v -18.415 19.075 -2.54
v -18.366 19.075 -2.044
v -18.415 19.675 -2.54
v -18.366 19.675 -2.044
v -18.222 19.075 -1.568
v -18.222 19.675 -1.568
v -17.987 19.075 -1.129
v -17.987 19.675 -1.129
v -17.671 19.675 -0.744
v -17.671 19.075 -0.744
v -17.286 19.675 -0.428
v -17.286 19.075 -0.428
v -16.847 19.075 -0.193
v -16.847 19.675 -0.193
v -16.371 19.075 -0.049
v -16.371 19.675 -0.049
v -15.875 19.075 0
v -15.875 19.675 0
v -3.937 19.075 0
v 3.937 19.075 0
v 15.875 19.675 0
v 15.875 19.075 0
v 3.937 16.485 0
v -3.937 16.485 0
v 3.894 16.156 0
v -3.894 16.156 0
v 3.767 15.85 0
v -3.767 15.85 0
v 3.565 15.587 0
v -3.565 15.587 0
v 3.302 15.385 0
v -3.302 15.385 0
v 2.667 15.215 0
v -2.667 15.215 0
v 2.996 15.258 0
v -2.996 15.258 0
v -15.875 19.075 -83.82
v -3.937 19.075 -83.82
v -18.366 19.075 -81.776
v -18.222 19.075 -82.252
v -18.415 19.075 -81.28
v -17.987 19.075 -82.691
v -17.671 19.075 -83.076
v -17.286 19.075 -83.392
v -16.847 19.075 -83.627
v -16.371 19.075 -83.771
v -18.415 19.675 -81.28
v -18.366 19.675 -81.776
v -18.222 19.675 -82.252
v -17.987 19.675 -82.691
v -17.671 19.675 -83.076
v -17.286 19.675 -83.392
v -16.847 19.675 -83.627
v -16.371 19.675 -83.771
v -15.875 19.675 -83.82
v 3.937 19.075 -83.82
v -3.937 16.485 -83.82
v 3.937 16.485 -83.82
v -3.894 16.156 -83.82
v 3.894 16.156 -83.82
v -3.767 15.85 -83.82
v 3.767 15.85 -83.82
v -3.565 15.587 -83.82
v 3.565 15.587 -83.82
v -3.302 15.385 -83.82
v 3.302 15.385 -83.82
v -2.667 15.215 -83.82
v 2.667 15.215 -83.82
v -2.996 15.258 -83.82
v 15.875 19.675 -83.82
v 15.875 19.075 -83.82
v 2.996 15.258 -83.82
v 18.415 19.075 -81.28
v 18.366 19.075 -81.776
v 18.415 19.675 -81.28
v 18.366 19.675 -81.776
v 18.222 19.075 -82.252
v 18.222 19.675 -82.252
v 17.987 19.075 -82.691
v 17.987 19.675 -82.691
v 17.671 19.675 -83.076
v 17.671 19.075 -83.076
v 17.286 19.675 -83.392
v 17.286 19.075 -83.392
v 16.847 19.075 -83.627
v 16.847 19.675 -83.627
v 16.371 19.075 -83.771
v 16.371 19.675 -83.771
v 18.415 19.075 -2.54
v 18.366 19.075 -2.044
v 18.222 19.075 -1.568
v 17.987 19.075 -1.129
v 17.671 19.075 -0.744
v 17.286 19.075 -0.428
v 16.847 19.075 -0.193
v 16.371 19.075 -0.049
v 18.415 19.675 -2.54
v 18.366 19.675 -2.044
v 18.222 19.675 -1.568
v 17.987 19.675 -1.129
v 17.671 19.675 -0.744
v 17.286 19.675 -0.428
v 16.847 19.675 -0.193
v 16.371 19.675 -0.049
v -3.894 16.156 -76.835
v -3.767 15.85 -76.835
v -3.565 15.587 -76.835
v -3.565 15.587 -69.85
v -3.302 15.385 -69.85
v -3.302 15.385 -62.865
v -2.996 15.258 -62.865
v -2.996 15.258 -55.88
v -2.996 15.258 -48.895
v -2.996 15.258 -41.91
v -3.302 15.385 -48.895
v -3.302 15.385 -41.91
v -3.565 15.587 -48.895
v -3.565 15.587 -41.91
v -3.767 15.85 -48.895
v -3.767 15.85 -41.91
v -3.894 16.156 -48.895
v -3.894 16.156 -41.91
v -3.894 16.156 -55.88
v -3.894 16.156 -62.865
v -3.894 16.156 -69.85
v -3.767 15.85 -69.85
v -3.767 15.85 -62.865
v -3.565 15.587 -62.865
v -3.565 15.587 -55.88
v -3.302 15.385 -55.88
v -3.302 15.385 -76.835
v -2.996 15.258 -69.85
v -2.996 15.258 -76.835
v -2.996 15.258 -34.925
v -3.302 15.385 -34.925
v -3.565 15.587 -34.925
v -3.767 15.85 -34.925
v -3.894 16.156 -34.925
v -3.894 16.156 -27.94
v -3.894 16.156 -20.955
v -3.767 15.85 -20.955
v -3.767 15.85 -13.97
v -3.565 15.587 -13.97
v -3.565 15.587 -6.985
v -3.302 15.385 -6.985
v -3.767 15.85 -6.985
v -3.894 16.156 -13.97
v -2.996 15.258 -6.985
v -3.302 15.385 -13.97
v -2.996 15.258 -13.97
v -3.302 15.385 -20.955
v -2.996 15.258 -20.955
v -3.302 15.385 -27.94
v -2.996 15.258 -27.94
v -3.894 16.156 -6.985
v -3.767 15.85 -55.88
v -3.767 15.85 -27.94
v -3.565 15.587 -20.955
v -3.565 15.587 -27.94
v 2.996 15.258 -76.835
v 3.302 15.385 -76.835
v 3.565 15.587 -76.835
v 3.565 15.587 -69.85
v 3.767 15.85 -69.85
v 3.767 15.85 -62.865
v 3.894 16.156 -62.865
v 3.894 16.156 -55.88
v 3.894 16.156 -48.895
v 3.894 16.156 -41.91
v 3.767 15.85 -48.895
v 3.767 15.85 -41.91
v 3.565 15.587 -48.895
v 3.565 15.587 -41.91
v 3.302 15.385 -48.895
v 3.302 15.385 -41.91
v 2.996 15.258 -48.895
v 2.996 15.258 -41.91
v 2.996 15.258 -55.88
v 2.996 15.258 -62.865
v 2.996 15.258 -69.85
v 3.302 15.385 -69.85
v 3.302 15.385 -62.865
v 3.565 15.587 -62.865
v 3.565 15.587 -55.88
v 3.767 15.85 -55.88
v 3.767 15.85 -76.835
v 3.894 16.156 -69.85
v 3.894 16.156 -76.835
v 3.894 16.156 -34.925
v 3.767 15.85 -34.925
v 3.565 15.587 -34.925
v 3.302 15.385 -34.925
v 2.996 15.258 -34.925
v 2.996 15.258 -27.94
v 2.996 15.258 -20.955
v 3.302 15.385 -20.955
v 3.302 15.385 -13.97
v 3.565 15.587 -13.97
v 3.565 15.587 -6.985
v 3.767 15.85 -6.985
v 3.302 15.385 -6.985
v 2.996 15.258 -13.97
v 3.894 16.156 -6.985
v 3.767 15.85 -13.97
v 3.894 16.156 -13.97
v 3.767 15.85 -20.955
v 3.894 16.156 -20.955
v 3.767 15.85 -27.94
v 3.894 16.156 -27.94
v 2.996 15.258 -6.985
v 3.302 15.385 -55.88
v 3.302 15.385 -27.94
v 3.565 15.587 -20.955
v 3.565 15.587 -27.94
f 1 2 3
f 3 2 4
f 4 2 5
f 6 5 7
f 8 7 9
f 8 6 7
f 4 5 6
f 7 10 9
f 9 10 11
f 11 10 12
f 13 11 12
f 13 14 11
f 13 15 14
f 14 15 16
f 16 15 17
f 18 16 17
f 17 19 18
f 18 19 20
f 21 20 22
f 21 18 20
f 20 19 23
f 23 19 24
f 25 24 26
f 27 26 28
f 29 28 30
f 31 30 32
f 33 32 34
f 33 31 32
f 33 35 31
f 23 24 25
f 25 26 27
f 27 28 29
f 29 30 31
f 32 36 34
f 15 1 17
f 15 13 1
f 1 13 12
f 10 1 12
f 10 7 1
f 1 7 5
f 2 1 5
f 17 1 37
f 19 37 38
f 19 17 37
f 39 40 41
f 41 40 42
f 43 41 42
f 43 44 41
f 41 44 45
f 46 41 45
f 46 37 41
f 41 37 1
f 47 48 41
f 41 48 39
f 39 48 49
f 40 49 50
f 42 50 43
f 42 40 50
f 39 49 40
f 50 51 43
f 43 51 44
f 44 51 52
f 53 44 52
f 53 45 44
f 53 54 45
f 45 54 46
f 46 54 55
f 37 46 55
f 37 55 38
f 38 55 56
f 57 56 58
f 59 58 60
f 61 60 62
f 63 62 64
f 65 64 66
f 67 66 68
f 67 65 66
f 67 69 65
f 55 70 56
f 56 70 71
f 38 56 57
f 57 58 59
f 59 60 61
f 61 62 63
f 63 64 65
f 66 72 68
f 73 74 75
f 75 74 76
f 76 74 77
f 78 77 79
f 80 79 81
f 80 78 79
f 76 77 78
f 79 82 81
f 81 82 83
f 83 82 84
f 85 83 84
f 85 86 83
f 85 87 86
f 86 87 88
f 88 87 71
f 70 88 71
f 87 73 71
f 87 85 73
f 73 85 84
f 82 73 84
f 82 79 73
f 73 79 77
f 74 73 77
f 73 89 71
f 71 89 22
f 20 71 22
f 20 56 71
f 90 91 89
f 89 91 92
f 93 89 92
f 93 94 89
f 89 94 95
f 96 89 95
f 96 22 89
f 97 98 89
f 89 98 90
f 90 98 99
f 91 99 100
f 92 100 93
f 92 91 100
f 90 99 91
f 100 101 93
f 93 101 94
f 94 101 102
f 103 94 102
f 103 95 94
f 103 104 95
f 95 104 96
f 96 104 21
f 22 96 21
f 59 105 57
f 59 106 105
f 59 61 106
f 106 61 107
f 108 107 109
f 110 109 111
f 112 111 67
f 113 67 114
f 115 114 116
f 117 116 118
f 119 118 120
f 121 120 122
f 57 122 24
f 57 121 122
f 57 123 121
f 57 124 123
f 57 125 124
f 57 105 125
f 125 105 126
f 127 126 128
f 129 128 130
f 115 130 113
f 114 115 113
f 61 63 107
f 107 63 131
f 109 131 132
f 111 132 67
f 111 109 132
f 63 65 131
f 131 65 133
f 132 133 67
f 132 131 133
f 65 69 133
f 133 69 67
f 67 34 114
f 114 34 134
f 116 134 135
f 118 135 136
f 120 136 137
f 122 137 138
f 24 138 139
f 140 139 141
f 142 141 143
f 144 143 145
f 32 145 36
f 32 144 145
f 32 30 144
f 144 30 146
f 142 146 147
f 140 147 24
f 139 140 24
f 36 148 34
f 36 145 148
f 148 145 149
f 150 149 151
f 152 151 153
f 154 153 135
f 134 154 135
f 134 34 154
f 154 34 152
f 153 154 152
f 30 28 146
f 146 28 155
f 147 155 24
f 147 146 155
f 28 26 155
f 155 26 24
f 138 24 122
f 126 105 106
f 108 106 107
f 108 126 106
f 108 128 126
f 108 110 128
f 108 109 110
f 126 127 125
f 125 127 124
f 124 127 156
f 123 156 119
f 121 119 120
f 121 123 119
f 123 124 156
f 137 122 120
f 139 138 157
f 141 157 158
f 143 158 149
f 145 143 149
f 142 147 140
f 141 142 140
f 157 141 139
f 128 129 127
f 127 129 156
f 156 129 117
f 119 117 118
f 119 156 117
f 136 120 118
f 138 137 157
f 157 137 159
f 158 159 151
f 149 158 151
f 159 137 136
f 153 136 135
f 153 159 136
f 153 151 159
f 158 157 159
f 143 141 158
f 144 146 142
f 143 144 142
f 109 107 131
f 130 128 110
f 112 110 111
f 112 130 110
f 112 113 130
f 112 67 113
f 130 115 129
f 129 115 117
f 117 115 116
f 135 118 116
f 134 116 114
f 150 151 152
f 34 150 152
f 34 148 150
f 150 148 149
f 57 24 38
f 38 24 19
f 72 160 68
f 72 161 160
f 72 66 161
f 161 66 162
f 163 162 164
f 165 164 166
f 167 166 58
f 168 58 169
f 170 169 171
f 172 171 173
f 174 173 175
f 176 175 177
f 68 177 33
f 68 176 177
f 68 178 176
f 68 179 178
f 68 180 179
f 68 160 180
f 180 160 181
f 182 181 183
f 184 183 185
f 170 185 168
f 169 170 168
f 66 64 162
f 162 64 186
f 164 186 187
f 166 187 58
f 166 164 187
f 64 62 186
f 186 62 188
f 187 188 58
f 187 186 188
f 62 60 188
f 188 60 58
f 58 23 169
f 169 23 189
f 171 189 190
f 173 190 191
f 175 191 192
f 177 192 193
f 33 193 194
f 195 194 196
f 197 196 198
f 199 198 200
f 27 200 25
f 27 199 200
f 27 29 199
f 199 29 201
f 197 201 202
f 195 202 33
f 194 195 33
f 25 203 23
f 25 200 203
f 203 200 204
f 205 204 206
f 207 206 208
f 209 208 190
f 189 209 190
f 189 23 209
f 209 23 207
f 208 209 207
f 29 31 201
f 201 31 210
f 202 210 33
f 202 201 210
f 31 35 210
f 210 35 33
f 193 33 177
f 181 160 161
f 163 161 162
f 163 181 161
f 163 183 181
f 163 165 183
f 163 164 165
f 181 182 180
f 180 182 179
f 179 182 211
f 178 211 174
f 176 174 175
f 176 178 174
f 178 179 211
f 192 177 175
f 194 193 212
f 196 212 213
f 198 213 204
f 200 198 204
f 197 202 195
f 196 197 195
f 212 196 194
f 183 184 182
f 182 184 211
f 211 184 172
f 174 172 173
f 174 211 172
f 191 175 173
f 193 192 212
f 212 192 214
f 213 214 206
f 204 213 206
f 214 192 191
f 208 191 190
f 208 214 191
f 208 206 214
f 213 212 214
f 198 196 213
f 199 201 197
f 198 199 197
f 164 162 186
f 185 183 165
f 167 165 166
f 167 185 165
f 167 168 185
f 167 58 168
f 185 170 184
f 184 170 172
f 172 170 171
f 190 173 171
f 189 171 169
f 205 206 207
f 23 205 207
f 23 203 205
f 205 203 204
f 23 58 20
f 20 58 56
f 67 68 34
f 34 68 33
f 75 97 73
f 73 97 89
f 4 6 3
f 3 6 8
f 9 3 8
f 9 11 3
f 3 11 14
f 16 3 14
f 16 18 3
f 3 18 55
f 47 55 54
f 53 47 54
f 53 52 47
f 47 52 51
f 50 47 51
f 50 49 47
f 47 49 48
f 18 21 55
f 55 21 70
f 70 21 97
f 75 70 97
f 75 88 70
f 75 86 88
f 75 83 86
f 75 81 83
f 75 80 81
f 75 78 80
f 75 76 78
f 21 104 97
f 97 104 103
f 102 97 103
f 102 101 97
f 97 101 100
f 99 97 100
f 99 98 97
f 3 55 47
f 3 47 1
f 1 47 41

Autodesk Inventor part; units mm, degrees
ref_plane "YZ Plane" through (0, 0, 0) normal (1, 0, 0) x (0, 1, 0)
ref_plane "XZ Plane" through (0, 0, 0) normal (0, 1, 0) x (-1, 0, 0)
ref_plane "Work Plane1" through (0, 0, 0) normal (0, 0, 1) x (1, 0, 0)
sketch "Sketch1" plane through (0, 0, 0) normal (0, 0, 1) x (1, 0, 0)
  circle A0 centre (0, 0) radius 2.413 projected
  line L0 (-4.7444, -6.5405) -> (4.7444, -6.5405) projected
  line L1 (4.7444, -6.5405) -> (10.16, -11.9561) projected
  line L2 (10.16, -11.9561) -> (10.16, -16.002) projected
  line L3 (10.16, -16.002) -> (6.985, -16.002) projected
  line L4 (6.985, -16.002) -> (6.985, -15.24) projected
  line L5 (6.985, -15.24) -> (4.445, -15.24) projected
  line L6 (4.445, -15.24) -> (4.445, -19.05) projected
  line L7 (4.445, -19.05) -> (19.05, -19.05) projected
  line L8 (19.05, -19.05) -> (19.05, -4.445) projected
  line L9 (19.05, -4.445) -> (15.24, -4.445) projected
  line L10 (15.24, -4.445) -> (15.24, -6.985) projected
  line L11 (15.24, -6.985) -> (16.002, -6.985) projected
  line L12 (16.002, -6.985) -> (16.002, -10.16) projected
  line L13 (16.002, -10.16) -> (11.9561, -10.16) projected
  line L14 (11.9561, -10.16) -> (6.5405, -4.7444) projected
  line L15 (6.5405, -4.7444) -> (6.5405, 4.7444) projected
  line L16 (6.5405, 4.7444) -> (11.9561, 10.16) projected
  line L17 (11.9561, 10.16) -> (16.002, 10.16) projected
  line L18 (16.002, 10.16) -> (16.002, 6.985) projected
  line L19 (16.002, 6.985) -> (15.24, 6.985) projected
  line L20 (15.24, 6.985) -> (15.24, 4.445) projected
  line L21 (15.24, 4.445) -> (19.05, 4.445) projected
  line L22 (19.05, 4.445) -> (19.05, 19.05) projected
  line L23 (19.05, 19.05) -> (4.445, 19.05) projected
  line L24 (4.445, 19.05) -> (4.445, 15.24) projected
  line L25 (4.445, 15.24) -> (6.985, 15.24) projected
  line L26 (6.985, 15.24) -> (6.985, 16.002) projected
  line L27 (6.985, 16.002) -> (10.16, 16.002) projected
  line L28 (10.16, 16.002) -> (10.16, 11.9561) projected
  line L29 (10.16, 11.9561) -> (4.7444, 6.5405) projected
  line L30 (4.7444, 6.5405) -> (-4.7444, 6.5405) projected
  line L31 (-4.7444, 6.5405) -> (-10.16, 11.9561) projected
  line L32 (-10.16, 11.9561) -> (-10.16, 16.002) projected
  line L33 (-10.16, 16.002) -> (-6.985, 16.002) projected
  line L34 (-6.985, 16.002) -> (-6.985, 15.24) projected
  line L35 (-6.985, 15.24) -> (-4.445, 15.24) projected
  line L36 (-4.445, 15.24) -> (-4.445, 19.05) projected
  line L37 (-4.445, 19.05) -> (-19.05, 19.05) projected
  line L38 (-19.05, 19.05) -> (-19.05, 4.445) projected
  line L39 (-19.05, 4.445) -> (-15.24, 4.445) projected
  line L40 (-15.24, 4.445) -> (-15.24, 6.985) projected
  line L41 (-15.24, 6.985) -> (-16.002, 6.985) projected
  line L42 (-16.002, 6.985) -> (-16.002, 10.16) projected
  line L43 (-16.002, 10.16) -> (-11.9561, 10.16) projected
  line L44 (-11.9561, 10.16) -> (-6.5405, 4.7444) projected
  line L45 (-6.5405, 4.7444) -> (-6.5405, -4.7444) projected
  line L46 (-6.5405, -4.7444) -> (-11.9561, -10.16) projected
  line L47 (-11.9561, -10.16) -> (-16.002, -10.16) projected
  line L48 (-16.002, -10.16) -> (-16.002, -6.985) projected
  line L49 (-16.002, -6.985) -> (-15.24, -6.985) projected
  line L50 (-15.24, -6.985) -> (-15.24, -4.445) projected
  line L51 (-15.24, -4.445) -> (-19.05, -4.445) projected
  line L52 (-19.05, -4.445) -> (-19.05, -19.05) projected
  line L53 (-19.05, -19.05) -> (-4.445, -19.05) projected
  line L54 (-4.445, -19.05) -> (-4.445, -15.24) projected
  line L55 (-4.445, -15.24) -> (-6.985, -15.24) projected
  line L56 (-6.985, -15.24) -> (-6.985, -16.002) projected
  line L57 (-6.985, -16.002) -> (-10.16, -16.002) projected
  line L58 (-10.16, -16.002) -> (-10.16, -11.9561) projected
  line L59 (-10.16, -11.9561) -> (-4.7444, -6.5405) projected
  line L60 (-18.415, 19.0754) -> (-3.937, 19.0754)
  line L61 (-3.937, 19.0754) -> (-3.937, 15.2146)
  line L62 (-3.937, 15.2146) -> (3.937, 15.2146)
  line L63 (3.937, 15.2146) -> (3.937, 19.0754)
  line L64 (3.937, 19.0754) -> (18.415, 19.0754)
  line L65 (18.415, 19.0754) -> (18.415, 19.6754)
  line L66 (18.415, 19.6754) -> (-18.415, 19.6754)
  line L67 (-18.415, 19.6754) -> (-18.415, 19.0754)
  dimension "d0" = 0.635
  dimension "d1" = 0.635
  dimension "d2" = 0.0254
  dimension "d3" = 0.6
  dimension "d4" = 0.508
  dimension "d5" = 0.508
  dimension "d6" = 0.0254
extrude "Extrusion1" add sketch "Sketch1" against normal blind 83.82 contours L67 L66 L65 L64 L63 L62 L61 L60
fillet "Fillet1" radius 1.27 2 edges at (3.937, 15.2146, -41.91) (-3.937, 15.2146, -41.91)
fillet "Fillet2" radius 2.54 4 edges at (18.415, 19.3754, 0) (18.415, 19.3754, -83.82) (-18.415, 19.3754, -83.82) (-18.415, 19.3754, 0)
equation "\"d1\" = d0"
equation "\"d5\" = d4"
equation "\"d6\" = d2"
properties part number "Flat Bearing"
